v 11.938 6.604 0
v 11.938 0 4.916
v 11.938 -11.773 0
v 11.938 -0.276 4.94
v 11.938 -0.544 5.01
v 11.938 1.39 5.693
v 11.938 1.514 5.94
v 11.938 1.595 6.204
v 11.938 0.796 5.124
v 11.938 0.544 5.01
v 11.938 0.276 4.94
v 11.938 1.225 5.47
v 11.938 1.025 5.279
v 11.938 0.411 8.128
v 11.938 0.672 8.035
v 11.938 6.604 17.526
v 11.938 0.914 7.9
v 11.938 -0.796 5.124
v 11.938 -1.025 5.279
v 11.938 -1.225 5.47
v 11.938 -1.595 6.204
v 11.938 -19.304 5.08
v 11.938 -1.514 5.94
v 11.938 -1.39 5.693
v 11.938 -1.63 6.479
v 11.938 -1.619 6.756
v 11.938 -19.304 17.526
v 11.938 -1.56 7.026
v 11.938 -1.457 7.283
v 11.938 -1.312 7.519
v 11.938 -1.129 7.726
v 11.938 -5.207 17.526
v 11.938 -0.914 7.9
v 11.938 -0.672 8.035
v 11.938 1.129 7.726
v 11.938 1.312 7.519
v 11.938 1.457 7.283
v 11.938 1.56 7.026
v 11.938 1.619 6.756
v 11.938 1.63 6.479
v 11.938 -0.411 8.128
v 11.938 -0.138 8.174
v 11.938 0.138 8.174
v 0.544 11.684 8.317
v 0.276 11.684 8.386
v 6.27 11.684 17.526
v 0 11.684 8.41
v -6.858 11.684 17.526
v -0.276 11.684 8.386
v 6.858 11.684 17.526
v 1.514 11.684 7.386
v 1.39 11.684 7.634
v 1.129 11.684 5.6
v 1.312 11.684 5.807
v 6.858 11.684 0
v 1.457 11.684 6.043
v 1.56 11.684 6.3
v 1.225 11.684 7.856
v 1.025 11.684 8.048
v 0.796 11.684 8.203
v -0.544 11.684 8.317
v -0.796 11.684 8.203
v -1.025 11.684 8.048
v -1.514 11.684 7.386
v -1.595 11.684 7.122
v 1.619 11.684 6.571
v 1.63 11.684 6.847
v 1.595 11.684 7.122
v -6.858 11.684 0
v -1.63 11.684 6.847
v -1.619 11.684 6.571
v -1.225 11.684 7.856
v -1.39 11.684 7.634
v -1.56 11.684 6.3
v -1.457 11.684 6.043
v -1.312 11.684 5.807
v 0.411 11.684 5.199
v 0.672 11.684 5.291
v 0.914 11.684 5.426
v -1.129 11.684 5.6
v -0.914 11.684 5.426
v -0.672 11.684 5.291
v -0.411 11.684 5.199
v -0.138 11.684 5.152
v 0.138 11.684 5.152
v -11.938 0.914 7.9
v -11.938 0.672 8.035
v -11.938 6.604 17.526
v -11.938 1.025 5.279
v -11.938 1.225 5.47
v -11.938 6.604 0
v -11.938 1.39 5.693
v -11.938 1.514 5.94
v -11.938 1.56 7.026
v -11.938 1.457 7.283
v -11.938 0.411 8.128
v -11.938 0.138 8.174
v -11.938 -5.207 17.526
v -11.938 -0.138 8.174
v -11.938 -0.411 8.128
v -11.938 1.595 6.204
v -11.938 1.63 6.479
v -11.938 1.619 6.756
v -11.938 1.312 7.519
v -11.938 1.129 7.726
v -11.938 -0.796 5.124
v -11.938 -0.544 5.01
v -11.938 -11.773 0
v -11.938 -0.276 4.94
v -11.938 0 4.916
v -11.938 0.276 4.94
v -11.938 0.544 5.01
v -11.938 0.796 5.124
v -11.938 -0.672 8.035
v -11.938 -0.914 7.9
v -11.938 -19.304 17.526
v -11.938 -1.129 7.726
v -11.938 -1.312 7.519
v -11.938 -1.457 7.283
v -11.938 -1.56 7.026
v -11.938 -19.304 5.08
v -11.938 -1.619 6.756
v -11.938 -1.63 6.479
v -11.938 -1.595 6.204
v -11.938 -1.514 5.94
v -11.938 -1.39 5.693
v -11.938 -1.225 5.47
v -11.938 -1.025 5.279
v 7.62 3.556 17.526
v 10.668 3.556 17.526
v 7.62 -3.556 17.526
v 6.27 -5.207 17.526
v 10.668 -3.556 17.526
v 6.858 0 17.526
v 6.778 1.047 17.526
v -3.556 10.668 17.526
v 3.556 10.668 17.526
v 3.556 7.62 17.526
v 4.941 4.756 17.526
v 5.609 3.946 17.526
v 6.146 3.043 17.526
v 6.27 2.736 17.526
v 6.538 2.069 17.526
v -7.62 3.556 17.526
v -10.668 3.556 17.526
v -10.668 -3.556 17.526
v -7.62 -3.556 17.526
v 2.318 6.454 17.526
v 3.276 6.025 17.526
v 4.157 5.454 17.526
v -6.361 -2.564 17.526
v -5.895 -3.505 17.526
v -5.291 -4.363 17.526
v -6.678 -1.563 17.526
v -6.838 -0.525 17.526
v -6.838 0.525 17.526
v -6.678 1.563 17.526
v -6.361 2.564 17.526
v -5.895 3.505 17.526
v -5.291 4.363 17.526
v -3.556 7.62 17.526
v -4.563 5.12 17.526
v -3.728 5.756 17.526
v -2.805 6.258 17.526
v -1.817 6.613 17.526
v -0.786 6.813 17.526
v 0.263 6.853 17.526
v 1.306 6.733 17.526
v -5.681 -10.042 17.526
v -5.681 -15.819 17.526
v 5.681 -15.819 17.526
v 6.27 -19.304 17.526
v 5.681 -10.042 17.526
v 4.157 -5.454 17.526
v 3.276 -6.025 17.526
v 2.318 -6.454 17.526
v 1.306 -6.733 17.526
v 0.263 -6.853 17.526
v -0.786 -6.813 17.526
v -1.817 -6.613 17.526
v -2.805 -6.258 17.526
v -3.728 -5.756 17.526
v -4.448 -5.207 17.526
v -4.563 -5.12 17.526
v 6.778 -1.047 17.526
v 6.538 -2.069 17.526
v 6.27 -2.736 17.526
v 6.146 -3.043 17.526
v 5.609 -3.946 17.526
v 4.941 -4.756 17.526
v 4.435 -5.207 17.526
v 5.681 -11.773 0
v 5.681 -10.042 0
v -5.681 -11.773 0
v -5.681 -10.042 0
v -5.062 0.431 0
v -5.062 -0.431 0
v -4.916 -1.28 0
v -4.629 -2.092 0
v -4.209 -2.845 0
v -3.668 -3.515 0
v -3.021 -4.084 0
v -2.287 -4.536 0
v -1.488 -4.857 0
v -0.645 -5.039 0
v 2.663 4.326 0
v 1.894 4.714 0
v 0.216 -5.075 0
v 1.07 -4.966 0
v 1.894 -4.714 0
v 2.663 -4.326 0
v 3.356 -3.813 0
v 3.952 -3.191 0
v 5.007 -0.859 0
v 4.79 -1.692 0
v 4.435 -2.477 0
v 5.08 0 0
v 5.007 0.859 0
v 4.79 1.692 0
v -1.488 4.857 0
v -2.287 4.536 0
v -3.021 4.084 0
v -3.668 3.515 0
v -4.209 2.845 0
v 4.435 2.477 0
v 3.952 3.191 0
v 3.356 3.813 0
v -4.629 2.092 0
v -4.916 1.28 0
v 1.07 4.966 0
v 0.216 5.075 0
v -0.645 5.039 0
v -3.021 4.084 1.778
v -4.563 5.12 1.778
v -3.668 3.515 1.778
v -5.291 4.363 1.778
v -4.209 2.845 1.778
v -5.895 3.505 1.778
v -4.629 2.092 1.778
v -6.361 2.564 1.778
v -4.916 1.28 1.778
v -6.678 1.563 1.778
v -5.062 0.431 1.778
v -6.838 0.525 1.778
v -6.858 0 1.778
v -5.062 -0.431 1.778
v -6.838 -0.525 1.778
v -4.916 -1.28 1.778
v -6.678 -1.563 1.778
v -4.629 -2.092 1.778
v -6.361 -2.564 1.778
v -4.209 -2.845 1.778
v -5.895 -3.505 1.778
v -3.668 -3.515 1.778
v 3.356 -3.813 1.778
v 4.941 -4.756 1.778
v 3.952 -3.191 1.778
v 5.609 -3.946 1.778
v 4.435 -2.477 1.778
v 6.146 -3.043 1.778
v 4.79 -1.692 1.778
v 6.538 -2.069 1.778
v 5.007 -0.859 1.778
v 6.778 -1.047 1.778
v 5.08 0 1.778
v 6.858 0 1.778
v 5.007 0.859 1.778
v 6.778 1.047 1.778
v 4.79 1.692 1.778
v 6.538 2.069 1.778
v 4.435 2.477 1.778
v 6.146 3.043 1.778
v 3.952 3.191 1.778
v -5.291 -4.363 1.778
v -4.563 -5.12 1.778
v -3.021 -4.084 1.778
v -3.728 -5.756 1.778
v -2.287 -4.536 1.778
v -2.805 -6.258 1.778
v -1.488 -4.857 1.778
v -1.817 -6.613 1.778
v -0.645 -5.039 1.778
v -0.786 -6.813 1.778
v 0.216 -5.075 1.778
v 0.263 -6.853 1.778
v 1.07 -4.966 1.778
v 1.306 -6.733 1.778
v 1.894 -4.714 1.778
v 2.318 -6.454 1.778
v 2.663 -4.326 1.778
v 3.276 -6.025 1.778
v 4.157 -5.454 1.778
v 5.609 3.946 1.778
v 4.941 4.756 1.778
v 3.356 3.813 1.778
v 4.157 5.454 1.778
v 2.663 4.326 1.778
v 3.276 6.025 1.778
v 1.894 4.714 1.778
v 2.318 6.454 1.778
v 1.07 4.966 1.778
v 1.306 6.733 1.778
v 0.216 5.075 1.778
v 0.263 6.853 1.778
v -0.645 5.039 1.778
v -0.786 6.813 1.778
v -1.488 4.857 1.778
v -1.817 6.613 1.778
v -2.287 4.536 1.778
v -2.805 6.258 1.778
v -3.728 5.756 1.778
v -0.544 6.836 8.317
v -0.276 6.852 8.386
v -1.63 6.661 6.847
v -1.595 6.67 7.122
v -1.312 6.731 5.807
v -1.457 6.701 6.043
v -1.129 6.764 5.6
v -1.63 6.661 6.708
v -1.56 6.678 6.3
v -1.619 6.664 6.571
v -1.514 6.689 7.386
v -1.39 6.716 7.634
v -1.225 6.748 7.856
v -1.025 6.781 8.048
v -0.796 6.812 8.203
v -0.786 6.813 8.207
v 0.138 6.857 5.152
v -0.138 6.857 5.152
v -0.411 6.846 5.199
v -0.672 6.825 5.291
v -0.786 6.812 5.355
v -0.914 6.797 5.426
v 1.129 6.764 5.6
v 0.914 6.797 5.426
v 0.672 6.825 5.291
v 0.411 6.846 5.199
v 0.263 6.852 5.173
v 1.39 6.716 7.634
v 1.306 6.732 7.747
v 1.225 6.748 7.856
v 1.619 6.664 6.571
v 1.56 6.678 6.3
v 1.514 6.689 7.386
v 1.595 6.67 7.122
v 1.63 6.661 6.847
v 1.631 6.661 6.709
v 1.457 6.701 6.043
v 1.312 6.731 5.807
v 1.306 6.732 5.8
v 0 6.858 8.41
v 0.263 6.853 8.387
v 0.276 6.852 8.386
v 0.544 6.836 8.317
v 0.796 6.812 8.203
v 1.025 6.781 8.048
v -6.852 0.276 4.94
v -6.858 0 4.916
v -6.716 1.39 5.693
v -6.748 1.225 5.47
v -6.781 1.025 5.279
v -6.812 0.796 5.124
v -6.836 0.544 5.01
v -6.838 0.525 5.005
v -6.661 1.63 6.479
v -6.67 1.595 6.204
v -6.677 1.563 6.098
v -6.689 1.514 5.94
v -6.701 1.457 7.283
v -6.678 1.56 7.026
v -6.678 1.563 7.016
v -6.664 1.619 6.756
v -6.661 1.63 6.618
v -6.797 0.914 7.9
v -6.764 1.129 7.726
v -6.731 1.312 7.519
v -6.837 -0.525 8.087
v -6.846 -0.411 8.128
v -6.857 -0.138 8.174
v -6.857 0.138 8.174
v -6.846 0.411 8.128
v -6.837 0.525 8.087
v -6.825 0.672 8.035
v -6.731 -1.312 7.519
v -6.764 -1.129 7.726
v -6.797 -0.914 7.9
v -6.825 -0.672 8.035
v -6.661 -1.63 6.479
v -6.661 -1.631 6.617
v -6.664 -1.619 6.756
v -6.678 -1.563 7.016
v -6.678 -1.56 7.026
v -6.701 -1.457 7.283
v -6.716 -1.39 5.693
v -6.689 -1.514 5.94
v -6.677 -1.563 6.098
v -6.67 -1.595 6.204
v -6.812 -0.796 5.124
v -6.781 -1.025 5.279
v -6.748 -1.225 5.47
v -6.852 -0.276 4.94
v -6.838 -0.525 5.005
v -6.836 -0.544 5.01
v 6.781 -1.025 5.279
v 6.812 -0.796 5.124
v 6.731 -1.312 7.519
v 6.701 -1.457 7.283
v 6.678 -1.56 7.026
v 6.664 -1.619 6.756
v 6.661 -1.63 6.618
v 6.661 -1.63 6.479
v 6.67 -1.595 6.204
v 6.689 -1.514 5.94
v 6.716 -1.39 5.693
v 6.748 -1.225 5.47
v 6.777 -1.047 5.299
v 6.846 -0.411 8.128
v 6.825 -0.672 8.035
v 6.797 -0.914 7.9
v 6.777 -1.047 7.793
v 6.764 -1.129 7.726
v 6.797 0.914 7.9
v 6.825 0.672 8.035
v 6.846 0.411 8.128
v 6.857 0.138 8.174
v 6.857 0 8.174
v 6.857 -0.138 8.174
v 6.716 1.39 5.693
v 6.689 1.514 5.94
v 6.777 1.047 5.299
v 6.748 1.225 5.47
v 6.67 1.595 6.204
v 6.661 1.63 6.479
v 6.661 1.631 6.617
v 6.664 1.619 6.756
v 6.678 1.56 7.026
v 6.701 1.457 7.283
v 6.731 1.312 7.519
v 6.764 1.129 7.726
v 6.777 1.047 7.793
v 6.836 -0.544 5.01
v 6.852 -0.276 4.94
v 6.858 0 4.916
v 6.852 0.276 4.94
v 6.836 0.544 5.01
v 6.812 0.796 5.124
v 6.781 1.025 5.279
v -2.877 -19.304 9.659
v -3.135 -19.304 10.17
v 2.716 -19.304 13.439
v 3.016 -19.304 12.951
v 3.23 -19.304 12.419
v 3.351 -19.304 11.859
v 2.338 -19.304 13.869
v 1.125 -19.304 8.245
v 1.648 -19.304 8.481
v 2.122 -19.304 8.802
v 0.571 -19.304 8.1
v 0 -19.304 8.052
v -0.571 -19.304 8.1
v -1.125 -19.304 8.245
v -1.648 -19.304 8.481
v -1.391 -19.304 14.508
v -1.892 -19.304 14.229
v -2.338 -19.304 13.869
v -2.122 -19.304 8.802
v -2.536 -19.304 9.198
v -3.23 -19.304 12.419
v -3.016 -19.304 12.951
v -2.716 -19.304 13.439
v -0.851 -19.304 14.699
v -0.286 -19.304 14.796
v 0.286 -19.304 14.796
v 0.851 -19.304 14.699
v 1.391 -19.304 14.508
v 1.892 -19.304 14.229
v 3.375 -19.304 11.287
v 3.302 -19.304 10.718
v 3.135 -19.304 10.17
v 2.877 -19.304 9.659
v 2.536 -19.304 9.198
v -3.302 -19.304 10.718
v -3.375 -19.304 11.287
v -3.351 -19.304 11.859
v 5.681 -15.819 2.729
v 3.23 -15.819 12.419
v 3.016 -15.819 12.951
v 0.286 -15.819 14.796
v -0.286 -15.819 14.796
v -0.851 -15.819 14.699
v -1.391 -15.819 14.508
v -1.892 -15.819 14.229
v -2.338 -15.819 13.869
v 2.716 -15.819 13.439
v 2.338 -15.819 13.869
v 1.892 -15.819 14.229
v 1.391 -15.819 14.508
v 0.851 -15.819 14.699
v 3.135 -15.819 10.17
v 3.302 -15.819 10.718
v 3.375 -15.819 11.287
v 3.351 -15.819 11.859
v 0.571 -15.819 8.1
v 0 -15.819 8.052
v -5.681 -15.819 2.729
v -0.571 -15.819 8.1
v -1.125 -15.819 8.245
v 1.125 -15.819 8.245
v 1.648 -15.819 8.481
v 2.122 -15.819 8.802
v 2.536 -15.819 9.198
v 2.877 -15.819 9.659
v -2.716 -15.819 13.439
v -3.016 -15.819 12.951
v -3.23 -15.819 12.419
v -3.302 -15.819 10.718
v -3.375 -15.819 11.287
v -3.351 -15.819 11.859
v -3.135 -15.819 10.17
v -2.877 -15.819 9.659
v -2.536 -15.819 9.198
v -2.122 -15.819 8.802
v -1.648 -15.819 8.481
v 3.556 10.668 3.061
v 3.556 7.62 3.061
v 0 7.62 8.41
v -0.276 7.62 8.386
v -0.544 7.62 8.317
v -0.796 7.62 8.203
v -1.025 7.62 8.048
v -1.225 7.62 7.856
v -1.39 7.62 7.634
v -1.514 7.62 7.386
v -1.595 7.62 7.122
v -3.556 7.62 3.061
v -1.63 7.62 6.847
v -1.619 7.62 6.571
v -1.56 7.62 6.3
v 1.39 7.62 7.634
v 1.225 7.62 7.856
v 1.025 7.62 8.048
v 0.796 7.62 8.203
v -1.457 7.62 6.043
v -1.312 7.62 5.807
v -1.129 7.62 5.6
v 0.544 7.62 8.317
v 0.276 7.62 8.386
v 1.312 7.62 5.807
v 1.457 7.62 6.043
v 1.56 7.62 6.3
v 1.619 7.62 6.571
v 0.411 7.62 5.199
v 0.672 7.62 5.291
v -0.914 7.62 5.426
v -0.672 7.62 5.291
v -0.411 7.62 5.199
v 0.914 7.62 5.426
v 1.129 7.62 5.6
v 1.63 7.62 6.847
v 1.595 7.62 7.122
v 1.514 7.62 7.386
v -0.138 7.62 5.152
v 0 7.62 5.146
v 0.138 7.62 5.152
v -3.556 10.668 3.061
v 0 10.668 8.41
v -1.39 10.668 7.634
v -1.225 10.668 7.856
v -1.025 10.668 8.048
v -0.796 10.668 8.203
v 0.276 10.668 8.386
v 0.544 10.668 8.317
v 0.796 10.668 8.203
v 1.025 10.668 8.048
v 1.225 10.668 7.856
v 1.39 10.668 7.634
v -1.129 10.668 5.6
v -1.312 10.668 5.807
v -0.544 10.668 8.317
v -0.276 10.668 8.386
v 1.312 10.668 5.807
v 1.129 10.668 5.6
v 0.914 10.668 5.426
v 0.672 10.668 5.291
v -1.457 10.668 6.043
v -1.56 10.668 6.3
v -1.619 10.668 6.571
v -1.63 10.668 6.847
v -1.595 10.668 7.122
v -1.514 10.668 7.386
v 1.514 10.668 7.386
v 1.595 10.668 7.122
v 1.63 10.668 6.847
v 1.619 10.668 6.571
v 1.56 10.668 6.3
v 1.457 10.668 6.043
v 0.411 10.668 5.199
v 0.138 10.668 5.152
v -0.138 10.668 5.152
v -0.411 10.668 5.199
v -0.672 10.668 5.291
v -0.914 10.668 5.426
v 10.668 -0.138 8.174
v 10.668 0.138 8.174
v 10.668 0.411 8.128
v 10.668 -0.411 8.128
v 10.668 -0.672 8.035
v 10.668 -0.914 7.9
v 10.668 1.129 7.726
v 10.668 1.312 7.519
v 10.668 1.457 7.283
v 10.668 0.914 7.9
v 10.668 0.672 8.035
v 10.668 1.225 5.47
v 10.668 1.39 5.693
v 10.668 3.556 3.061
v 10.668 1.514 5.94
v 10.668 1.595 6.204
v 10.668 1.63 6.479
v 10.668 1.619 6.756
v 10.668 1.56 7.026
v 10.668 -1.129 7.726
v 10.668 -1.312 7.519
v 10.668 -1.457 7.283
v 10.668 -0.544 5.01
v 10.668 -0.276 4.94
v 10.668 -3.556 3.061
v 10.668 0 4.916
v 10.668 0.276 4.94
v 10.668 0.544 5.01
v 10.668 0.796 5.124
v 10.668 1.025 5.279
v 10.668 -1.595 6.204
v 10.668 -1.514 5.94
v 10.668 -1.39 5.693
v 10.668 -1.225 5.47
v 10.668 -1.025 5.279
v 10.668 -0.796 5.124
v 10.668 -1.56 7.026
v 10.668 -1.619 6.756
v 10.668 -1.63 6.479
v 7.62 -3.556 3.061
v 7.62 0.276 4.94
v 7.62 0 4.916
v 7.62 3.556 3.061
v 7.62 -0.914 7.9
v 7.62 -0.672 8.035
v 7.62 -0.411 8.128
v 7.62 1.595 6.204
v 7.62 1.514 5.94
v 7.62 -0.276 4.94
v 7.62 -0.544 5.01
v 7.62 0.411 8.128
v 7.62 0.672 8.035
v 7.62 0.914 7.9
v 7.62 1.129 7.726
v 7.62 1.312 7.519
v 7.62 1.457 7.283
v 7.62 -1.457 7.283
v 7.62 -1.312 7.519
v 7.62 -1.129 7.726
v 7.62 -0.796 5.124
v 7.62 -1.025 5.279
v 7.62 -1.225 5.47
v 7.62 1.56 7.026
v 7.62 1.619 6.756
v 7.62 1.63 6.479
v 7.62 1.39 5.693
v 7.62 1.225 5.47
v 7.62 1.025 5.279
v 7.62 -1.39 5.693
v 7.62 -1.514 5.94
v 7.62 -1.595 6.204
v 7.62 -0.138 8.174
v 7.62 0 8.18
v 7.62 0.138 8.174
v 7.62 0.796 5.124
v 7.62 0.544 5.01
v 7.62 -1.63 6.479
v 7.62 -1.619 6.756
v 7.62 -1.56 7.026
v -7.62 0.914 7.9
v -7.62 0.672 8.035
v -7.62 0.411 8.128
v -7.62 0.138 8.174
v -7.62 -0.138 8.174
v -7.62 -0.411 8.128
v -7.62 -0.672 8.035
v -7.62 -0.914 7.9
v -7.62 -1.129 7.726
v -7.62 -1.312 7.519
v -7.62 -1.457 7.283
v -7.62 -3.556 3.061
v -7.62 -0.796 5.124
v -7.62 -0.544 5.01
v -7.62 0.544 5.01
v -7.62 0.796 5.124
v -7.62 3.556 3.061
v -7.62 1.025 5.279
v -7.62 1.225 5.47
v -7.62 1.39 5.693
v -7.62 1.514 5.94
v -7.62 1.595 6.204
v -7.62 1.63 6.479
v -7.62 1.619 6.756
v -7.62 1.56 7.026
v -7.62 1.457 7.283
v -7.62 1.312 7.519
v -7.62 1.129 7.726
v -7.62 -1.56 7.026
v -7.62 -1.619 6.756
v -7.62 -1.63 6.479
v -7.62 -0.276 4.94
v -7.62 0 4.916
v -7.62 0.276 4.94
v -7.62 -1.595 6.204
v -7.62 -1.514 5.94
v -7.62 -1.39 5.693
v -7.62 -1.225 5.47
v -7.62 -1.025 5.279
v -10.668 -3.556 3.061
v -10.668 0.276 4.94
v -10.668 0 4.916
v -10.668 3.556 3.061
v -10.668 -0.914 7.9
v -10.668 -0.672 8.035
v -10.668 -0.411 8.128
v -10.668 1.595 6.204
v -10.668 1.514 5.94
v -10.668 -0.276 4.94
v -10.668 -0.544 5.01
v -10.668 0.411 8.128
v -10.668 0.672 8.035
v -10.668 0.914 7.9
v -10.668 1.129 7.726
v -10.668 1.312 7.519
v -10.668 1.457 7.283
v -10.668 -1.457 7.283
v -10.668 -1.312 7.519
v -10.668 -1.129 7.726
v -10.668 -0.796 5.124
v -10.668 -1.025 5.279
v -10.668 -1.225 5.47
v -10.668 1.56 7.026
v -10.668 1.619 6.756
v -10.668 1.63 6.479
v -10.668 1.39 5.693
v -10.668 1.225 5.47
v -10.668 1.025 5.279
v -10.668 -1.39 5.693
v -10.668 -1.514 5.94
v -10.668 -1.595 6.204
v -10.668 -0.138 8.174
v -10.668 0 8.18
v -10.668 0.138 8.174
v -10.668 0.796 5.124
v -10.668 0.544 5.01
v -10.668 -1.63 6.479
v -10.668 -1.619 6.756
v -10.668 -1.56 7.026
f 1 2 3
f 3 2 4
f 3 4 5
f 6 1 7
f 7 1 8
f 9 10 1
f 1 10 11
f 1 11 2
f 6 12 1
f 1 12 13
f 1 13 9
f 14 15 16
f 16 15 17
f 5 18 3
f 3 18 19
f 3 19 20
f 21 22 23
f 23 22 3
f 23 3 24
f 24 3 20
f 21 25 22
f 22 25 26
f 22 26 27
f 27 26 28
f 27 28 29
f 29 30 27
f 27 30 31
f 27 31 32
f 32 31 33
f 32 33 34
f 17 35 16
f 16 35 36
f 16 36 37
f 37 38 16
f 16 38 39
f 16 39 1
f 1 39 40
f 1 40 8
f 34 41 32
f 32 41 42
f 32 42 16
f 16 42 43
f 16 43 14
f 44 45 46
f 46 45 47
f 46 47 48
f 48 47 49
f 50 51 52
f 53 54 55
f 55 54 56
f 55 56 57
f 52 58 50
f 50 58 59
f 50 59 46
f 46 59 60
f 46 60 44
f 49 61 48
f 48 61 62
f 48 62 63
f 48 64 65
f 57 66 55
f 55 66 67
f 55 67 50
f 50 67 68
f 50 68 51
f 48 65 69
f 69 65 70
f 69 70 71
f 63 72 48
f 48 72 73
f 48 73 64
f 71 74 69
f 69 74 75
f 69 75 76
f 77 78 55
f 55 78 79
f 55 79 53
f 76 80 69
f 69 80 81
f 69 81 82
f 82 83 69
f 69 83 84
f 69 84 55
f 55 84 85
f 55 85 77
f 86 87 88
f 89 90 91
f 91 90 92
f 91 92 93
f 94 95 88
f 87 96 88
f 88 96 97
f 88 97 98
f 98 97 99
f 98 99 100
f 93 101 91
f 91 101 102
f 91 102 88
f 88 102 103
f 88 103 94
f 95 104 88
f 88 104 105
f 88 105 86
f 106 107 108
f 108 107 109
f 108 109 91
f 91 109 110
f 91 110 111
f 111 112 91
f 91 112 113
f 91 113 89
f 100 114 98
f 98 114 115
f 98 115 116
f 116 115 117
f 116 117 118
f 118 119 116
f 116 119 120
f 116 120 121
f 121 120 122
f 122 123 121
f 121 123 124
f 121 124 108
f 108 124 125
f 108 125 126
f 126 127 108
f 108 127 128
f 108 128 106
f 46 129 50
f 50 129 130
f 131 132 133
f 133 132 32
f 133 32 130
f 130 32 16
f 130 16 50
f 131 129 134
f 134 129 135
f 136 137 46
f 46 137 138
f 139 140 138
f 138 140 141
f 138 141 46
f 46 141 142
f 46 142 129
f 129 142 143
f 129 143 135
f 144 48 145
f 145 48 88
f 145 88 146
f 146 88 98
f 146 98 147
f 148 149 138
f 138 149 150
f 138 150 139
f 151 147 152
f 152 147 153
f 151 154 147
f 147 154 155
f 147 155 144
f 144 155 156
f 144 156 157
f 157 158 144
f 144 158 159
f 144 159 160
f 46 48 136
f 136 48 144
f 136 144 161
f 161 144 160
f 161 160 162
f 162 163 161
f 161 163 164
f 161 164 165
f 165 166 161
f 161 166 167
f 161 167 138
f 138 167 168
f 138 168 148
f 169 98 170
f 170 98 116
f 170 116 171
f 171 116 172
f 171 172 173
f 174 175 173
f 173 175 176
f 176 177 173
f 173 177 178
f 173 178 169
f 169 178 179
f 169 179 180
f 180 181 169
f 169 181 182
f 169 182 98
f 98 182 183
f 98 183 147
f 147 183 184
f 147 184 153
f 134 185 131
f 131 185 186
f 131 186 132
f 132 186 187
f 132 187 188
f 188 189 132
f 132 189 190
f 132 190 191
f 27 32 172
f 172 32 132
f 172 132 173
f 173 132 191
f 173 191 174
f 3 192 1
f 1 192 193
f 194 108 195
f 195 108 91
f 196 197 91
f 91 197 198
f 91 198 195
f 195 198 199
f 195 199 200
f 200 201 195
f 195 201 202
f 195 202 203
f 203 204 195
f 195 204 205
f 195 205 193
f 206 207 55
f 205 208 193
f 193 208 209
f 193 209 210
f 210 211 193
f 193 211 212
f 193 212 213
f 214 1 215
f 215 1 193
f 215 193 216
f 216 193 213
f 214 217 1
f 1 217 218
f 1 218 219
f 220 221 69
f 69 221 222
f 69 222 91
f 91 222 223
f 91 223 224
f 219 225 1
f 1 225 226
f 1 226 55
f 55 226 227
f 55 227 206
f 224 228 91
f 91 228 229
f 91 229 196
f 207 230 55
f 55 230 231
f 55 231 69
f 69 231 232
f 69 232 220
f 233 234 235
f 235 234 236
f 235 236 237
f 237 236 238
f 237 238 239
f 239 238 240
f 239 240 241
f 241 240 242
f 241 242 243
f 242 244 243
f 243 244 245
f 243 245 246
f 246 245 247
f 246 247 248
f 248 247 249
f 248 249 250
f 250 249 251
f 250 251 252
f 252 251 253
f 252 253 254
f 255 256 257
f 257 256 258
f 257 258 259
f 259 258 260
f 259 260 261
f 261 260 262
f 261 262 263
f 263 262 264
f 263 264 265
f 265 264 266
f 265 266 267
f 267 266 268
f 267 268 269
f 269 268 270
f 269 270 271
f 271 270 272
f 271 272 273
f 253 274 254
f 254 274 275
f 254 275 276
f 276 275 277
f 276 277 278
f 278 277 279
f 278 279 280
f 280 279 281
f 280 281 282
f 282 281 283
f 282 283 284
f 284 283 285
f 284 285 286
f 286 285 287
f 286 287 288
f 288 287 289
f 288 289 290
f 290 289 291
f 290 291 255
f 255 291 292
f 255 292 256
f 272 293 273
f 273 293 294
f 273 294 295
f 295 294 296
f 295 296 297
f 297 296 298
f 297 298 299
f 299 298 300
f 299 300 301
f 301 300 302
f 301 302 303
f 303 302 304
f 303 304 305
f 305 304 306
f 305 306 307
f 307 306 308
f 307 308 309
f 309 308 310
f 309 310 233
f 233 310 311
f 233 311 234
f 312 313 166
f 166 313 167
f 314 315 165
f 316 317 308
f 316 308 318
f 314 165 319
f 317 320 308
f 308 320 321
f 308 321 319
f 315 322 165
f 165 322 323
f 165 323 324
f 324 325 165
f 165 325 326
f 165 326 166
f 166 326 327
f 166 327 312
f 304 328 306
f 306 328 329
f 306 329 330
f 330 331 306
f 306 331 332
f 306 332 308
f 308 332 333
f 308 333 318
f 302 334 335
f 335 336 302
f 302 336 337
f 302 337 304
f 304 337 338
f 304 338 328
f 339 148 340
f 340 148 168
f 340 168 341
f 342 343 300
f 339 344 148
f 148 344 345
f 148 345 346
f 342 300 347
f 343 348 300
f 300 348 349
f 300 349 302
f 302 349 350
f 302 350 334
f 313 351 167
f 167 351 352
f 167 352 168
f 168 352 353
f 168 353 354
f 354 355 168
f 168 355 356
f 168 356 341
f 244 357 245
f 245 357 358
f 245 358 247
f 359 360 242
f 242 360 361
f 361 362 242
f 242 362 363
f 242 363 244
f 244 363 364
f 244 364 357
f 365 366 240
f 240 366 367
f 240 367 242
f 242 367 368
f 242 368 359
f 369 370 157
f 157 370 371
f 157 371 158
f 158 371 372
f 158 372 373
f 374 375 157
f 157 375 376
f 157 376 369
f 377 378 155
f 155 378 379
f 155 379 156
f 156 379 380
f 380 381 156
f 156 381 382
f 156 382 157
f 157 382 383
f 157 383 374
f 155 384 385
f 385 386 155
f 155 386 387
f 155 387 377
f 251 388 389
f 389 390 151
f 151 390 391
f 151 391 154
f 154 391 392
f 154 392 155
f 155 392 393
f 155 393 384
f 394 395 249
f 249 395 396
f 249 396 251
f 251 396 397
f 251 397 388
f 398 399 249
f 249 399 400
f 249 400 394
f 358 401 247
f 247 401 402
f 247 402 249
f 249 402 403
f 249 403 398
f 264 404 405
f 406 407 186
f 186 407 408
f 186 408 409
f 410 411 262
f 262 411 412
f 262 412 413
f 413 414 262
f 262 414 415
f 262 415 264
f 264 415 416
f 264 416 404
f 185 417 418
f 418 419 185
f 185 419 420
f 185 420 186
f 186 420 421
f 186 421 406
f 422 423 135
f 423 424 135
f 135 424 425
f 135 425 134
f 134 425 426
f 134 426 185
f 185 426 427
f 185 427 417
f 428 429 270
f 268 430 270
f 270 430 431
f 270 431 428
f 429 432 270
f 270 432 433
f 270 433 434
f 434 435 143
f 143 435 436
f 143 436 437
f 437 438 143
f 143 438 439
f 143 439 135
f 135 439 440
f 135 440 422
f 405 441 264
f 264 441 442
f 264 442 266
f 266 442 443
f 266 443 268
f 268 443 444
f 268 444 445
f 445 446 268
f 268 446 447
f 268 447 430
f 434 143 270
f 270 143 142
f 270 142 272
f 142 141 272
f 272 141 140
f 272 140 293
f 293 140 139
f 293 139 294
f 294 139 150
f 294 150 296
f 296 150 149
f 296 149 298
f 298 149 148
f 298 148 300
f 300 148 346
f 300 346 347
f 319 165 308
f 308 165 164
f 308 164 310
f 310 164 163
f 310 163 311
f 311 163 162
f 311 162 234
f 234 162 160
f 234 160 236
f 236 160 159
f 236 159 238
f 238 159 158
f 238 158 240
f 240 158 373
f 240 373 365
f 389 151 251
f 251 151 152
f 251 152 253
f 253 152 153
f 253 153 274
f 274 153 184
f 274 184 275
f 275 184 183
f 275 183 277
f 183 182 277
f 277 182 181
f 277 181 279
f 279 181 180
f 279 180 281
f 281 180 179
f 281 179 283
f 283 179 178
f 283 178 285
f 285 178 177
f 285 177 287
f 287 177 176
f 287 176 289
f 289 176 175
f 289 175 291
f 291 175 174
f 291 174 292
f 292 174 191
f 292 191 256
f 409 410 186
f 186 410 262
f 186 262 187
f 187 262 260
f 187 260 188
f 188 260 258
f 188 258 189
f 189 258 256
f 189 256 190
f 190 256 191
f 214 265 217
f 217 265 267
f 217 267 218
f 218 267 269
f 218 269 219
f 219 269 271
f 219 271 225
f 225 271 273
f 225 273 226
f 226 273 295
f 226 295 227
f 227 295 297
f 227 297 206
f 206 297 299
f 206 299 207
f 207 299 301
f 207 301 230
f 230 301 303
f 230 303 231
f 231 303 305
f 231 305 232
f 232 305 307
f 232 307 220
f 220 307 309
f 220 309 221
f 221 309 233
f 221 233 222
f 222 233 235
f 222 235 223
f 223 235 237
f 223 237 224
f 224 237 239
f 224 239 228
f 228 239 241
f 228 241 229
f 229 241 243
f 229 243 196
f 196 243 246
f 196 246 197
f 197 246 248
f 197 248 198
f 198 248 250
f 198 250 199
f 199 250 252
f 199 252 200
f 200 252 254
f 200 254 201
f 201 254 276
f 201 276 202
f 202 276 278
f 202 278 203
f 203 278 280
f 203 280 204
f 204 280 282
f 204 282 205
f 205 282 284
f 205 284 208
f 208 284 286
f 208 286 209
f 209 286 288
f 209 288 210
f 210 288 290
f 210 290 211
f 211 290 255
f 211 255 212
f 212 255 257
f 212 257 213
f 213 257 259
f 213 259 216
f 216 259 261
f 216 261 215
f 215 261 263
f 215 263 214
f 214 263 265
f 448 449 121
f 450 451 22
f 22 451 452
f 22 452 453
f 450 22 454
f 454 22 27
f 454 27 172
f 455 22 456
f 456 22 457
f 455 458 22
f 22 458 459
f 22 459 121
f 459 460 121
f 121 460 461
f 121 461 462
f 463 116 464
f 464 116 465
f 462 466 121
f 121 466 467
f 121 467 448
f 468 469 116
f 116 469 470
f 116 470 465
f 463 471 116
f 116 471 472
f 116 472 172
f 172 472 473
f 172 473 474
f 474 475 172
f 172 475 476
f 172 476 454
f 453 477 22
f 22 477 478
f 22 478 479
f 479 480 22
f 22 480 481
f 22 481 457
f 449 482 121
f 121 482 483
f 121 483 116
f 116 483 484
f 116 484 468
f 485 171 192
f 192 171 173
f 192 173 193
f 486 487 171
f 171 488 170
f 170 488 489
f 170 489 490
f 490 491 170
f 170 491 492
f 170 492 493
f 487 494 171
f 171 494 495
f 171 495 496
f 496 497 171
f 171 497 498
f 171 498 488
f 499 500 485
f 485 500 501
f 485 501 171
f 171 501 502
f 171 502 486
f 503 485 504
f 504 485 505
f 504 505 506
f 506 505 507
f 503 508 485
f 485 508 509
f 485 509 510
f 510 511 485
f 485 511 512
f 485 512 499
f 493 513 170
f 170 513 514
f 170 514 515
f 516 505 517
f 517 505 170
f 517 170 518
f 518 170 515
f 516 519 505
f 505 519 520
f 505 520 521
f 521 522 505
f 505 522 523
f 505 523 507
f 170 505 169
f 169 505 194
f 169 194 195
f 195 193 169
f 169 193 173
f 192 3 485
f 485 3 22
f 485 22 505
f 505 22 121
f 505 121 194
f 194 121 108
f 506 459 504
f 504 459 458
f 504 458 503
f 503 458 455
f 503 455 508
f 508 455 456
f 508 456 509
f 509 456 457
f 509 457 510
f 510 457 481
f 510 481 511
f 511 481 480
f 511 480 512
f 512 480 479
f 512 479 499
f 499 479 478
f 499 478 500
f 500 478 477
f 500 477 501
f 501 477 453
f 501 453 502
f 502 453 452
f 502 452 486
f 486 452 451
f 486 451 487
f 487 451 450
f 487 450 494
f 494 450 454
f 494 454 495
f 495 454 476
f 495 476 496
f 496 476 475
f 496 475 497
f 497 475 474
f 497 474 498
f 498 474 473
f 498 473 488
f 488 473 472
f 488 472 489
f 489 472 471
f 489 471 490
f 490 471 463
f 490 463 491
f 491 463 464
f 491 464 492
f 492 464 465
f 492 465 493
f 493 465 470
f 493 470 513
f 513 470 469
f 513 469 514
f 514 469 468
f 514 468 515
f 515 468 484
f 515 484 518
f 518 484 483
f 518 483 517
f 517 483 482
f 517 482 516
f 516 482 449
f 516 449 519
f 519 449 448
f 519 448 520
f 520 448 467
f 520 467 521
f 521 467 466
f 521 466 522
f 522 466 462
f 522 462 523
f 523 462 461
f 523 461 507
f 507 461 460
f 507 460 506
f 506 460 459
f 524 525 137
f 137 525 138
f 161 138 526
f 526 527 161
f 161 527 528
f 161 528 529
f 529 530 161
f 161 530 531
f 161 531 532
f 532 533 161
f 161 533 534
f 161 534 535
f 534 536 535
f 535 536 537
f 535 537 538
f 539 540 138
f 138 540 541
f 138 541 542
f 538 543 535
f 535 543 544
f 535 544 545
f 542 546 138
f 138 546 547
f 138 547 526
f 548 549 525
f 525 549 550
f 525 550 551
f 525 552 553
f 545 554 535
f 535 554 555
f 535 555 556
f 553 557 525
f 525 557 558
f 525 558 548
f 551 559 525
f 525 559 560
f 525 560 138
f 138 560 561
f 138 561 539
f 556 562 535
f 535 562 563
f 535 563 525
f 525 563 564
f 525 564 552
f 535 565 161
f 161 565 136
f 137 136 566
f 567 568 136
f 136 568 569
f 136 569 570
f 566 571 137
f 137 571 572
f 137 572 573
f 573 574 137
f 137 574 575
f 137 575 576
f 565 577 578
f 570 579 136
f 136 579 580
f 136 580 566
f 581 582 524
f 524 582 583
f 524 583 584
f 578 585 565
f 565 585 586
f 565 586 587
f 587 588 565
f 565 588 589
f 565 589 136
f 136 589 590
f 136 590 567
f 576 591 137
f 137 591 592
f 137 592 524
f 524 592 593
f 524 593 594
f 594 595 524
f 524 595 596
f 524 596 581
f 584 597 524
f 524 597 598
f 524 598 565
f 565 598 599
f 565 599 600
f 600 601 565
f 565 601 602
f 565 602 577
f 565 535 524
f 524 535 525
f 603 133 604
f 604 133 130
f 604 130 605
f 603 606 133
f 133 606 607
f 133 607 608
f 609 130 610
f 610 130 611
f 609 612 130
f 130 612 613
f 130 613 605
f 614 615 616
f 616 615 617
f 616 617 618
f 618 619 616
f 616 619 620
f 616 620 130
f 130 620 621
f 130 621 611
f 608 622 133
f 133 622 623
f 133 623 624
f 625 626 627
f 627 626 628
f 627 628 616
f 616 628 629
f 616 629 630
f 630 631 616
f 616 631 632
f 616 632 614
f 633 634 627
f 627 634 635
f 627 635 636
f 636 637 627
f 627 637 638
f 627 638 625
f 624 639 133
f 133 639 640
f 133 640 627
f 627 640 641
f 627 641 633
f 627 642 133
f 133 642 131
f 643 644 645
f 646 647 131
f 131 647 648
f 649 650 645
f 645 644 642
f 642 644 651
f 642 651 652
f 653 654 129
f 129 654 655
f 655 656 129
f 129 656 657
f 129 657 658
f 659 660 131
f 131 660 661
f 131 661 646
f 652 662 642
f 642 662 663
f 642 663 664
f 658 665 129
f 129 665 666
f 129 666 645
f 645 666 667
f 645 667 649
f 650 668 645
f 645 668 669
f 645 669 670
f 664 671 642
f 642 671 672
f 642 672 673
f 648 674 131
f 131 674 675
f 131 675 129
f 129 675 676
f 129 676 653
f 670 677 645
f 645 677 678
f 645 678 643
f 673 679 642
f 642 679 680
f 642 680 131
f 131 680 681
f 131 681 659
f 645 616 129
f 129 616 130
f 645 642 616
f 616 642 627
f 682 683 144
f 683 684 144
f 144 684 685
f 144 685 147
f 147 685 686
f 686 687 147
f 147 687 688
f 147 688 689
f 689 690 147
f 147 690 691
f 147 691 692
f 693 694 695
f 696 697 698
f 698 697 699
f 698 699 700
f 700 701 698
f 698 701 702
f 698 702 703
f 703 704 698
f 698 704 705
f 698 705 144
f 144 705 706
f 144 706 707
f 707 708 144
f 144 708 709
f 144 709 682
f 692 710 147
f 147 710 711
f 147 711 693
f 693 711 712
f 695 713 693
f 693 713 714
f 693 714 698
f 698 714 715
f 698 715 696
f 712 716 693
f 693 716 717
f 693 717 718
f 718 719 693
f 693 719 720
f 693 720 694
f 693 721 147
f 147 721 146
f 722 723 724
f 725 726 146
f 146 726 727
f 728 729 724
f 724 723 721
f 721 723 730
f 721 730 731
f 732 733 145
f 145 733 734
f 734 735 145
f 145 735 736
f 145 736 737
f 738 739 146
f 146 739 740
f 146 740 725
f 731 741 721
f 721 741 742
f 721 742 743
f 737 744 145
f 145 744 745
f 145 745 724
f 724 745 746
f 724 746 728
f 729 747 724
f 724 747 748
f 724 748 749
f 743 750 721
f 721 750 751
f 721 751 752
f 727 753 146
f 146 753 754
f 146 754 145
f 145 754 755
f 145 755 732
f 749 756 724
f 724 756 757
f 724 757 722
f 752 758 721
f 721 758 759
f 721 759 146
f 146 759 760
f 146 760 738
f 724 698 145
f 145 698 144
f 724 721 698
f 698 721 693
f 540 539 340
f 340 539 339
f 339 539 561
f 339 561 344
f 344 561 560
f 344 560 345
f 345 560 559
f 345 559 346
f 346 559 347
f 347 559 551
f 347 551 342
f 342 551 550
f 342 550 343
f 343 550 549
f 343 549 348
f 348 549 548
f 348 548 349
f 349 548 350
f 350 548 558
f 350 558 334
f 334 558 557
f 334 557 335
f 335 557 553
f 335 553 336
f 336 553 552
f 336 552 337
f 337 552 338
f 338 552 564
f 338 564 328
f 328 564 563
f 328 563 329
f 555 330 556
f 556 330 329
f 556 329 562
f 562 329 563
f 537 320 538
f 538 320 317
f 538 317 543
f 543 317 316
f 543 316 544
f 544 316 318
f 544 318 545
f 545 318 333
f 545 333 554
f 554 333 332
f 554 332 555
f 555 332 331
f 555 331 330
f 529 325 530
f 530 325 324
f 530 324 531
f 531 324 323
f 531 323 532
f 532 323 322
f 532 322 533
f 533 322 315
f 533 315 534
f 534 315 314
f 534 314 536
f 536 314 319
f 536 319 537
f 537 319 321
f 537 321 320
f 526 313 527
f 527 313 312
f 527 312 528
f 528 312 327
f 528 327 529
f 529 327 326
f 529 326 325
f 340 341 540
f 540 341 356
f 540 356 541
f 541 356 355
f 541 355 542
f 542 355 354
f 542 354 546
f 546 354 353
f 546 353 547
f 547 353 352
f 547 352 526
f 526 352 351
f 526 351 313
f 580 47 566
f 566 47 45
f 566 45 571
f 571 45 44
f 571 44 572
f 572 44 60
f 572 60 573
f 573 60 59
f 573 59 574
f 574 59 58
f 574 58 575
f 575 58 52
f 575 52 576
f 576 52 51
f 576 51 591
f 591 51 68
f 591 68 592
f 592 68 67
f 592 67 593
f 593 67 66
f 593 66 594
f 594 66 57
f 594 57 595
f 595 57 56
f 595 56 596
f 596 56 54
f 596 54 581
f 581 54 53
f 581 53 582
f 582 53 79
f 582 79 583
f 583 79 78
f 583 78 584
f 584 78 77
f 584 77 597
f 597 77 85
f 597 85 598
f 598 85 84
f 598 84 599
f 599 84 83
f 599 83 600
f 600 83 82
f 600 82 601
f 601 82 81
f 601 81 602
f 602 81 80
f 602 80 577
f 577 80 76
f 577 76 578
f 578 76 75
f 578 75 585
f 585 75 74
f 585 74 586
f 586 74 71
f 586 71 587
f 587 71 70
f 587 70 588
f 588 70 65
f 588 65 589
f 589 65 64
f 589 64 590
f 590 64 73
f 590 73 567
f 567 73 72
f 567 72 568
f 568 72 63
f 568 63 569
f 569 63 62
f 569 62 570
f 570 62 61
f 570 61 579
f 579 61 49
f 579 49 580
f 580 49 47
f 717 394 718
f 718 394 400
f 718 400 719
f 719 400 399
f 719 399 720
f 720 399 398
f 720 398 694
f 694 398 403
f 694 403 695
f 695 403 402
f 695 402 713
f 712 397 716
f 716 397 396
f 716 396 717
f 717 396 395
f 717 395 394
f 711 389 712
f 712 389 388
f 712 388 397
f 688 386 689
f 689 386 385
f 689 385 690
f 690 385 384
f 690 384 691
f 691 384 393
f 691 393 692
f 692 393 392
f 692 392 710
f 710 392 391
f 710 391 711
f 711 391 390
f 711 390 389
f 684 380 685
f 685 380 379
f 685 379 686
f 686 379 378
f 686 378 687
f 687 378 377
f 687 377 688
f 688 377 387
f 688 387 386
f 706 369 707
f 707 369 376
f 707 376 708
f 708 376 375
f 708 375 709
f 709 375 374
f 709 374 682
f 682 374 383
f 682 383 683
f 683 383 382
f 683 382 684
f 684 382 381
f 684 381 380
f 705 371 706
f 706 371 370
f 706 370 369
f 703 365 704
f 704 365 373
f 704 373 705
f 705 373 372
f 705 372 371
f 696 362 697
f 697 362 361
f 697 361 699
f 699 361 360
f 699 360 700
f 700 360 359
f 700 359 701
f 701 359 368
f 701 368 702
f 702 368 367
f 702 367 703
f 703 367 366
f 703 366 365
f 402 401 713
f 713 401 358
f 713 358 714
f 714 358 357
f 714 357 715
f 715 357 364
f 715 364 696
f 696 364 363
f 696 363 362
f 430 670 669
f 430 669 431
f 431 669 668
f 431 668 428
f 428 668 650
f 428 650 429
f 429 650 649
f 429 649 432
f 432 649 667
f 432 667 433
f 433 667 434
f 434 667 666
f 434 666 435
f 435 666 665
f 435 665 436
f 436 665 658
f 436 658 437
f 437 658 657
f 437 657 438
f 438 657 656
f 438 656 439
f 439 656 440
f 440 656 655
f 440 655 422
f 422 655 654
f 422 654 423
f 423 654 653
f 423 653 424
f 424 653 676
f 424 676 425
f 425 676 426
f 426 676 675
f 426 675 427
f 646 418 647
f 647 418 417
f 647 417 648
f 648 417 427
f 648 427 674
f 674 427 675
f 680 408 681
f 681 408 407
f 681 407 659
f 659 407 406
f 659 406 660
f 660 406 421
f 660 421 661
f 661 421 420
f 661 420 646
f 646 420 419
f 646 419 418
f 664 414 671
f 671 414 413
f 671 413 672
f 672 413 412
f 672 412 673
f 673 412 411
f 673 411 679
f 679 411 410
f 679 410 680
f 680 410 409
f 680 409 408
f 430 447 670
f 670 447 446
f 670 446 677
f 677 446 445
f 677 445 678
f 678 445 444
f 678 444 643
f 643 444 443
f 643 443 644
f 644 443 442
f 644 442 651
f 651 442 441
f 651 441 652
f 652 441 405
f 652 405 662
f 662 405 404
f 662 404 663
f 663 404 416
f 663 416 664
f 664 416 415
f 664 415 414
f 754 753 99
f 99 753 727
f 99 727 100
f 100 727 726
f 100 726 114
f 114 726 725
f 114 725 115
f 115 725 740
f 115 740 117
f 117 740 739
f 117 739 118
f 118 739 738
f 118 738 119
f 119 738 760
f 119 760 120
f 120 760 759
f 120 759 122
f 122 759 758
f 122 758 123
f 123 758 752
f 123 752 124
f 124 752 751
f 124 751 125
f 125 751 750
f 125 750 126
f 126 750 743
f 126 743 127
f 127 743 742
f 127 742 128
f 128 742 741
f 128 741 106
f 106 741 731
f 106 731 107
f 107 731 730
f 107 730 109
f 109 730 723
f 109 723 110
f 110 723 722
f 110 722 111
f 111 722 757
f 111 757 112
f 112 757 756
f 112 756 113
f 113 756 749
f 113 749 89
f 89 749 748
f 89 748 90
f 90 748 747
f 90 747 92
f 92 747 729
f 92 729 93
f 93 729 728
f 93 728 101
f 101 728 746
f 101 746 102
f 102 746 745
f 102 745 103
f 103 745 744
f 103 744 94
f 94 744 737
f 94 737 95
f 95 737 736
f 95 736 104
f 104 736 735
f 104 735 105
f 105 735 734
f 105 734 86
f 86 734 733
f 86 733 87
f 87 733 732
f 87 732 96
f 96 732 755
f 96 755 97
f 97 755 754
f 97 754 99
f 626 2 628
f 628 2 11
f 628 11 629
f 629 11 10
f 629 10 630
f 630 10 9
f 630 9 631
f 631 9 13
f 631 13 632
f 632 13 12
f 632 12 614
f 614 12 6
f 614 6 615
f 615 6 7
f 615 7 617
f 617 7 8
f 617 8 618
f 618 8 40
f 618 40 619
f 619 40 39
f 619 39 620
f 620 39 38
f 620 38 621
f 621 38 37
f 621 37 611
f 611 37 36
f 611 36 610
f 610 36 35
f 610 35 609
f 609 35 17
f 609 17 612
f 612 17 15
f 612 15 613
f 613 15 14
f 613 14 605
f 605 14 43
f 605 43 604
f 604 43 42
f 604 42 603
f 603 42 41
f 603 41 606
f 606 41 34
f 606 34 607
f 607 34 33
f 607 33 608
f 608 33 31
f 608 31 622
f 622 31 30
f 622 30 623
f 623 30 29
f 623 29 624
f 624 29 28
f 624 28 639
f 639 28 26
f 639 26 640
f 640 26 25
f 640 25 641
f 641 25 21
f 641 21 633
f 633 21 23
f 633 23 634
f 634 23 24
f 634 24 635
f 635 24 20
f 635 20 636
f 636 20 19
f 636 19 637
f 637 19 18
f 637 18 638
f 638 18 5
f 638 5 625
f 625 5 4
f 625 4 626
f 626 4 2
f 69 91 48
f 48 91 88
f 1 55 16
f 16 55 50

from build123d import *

# Parameters (mm, degrees)
SKETCH1_W                   = 23.876
SKETCH1_H                   = 23.368
BOSS_EXTRUDE1_DEPTH         = 17.526
SKETCH2_R                   = 6.858
CUT_EXTRUDE2_DEPTH          = 15.748
SKETCH3_R                   = 5.08
CUT_EXTRUDE3_DEPTH          = 1.778
SKETCH4_W                   = 23.876
SKETCH4_H                   = 17.526
BOSS_EXTRUDE2_DEPTH         = 7.62
SKETCH6_W                   = 11.362672476
SKETCH6_H                   = 5.777630073
CUT_EXTRUDE5_DEPTH          = 29.676138792
CHAMFER1_SIZE               = 5.08
CHAMFER1_SIZE_2             = 7.53140972
F_1_4_CLEARANCE_HOLE1_D     = 6.7564
F_1_4_CLEARANCE_HOLE1_DEPTH = 3.484763225
SKETCH10_W                  = 7.112
SKETCH10_H                  = 3.048
SKETCH10_W_2                = 3.048
SKETCH10_H_2                = 7.112
CUT_EXTRUDE6_DEPTH          = 14.4653
F_4_CLEARANCE_HOLE1_D       = 3.2639
F_4_CLEARANCE_HOLE1_DEPTH   = 6.604
F_4_CLEARANCE_HOLE1_TIP     = 0.980574487
F_4_CLEARANCE_HOLE2_D       = 3.2639
CHAMFER2_SIZE               = 5.08


with BuildPart() as part:
    # Sketch1 → Boss-Extrude1 (new body)
    with BuildSketch(Plane.XY):
        Rectangle(SKETCH1_W, SKETCH1_H)
    extrude(amount=BOSS_EXTRUDE1_DEPTH)

    # Sketch2 → Cut-Extrude2 (cut)
    with BuildSketch(Plane.XY.offset(17.526)):
        Circle(SKETCH2_R)
    extrude(amount=-CUT_EXTRUDE2_DEPTH, mode=Mode.SUBTRACT)

    # Sketch3 → Cut-Extrude3 (cut)
    with BuildSketch(Plane.XY.offset(1.778)):
        Circle(SKETCH3_R)
    extrude(amount=-CUT_EXTRUDE3_DEPTH, mode=Mode.SUBTRACT)

    # Sketch4 → Boss-Extrude2 (add)
    with BuildSketch(Plane.XZ.offset(11.684)):
        with Locations((0, 8.763)):
            Rectangle(SKETCH4_W, SKETCH4_H)
    extrude(amount=BOSS_EXTRUDE2_DEPTH)

    # Sketch6 → Cut-Extrude5 (cut, through all)
    with BuildSketch(Plane.XY.offset(17.526)):
        with Locations((0, -12.930421739)):
            Rectangle(SKETCH6_W, SKETCH6_H)
    extrude(amount=-CUT_EXTRUDE5_DEPTH, mode=Mode.SUBTRACT)

    # Chamfer1
    # the kernel refuses this chamfer: 7.53140972, 5.08 mm, written as the material it takes off along each edge
    with BuildSketch(Plane(origin=(-31.395464843, -19.304, 0), x_dir=(0, -0.04753214298802828, 0.9988697089125115), z_dir=(1, 0, 0))) as chamfer1_piece_1:
        Polygon((CHAMFER1_SIZE * 0.998869708913, -CHAMFER1_SIZE * 0.047532142988), (-CHAMFER1_SIZE_2 * 0.0475321429883, -CHAMFER1_SIZE_2 * 0.998869708918), (0, 0), align=None)
    extrude(amount=62.790929686, mode=Mode.SUBTRACT)

    # 1/4 Clearance Hole1
    with Locations(Plane(origin=(0, -19.304, 0), x_dir=(-1, 0, 0), z_dir=(0, -1, 0))):
        with Locations((0, -11.43)):
            Hole(F_1_4_CLEARANCE_HOLE1_D / 2, depth=F_1_4_CLEARANCE_HOLE1_DEPTH)

    # Sketch10 → Cut-Extrude6 (cut)
    with BuildSketch(Plane.XY.offset(17.526)):
        with Locations((0, 9.144)):
            Rectangle(SKETCH10_W, SKETCH10_H)
        with Locations((9.144, 0)):
            Rectangle(SKETCH10_W_2, SKETCH10_H_2)
        with Locations((-9.144, 0)):
            Rectangle(SKETCH10_W_2, SKETCH10_H_2)
    extrude(amount=-CUT_EXTRUDE6_DEPTH, mode=Mode.SUBTRACT)

    # #4 Clearance Hole1
    with Locations(Plane(origin=(0, 11.684, 0), x_dir=(1, 0, 0), z_dir=(0, 1, 0))):
        with Locations((0, -6.777873248)):
            Hole(F_4_CLEARANCE_HOLE1_D / 2, depth=F_4_CLEARANCE_HOLE1_DEPTH)
            with Locations((0, 0, -(F_4_CLEARANCE_HOLE1_DEPTH + F_4_CLEARANCE_HOLE1_TIP / 2))):  # 118° drill point
                Cone(0, F_4_CLEARANCE_HOLE1_D / 2, F_4_CLEARANCE_HOLE1_TIP, mode=Mode.SUBTRACT)

    # #4 Clearance Hole2 (through all)
    with Locations(Plane(origin=(11.938, 0, 0), x_dir=(0, 0, -1), z_dir=(1, 0, 0))):
        with Locations((-6.548240248, 0)):
            f_4_clearance_hole2 = Hole(F_4_CLEARANCE_HOLE2_D / 2)

    # Mirror1: #4 Clearance Hole2 across plane
    add(f_4_clearance_hole2.mirror(Plane(origin=(0, 0, 0), x_dir=(0, 0, 1), z_dir=(1, 0, 0))), mode=Mode.SUBTRACT)

    # Chamfer2
    chamfer2_edges = [part.edges().sort_by_distance(p)[0] for p in [
        (-11.938, 11.684, 8.763),
        (11.938, 11.684, 8.763),
    ]]
    chamfer(chamfer2_edges, length=CHAMFER2_SIZE)


solid = part.part
